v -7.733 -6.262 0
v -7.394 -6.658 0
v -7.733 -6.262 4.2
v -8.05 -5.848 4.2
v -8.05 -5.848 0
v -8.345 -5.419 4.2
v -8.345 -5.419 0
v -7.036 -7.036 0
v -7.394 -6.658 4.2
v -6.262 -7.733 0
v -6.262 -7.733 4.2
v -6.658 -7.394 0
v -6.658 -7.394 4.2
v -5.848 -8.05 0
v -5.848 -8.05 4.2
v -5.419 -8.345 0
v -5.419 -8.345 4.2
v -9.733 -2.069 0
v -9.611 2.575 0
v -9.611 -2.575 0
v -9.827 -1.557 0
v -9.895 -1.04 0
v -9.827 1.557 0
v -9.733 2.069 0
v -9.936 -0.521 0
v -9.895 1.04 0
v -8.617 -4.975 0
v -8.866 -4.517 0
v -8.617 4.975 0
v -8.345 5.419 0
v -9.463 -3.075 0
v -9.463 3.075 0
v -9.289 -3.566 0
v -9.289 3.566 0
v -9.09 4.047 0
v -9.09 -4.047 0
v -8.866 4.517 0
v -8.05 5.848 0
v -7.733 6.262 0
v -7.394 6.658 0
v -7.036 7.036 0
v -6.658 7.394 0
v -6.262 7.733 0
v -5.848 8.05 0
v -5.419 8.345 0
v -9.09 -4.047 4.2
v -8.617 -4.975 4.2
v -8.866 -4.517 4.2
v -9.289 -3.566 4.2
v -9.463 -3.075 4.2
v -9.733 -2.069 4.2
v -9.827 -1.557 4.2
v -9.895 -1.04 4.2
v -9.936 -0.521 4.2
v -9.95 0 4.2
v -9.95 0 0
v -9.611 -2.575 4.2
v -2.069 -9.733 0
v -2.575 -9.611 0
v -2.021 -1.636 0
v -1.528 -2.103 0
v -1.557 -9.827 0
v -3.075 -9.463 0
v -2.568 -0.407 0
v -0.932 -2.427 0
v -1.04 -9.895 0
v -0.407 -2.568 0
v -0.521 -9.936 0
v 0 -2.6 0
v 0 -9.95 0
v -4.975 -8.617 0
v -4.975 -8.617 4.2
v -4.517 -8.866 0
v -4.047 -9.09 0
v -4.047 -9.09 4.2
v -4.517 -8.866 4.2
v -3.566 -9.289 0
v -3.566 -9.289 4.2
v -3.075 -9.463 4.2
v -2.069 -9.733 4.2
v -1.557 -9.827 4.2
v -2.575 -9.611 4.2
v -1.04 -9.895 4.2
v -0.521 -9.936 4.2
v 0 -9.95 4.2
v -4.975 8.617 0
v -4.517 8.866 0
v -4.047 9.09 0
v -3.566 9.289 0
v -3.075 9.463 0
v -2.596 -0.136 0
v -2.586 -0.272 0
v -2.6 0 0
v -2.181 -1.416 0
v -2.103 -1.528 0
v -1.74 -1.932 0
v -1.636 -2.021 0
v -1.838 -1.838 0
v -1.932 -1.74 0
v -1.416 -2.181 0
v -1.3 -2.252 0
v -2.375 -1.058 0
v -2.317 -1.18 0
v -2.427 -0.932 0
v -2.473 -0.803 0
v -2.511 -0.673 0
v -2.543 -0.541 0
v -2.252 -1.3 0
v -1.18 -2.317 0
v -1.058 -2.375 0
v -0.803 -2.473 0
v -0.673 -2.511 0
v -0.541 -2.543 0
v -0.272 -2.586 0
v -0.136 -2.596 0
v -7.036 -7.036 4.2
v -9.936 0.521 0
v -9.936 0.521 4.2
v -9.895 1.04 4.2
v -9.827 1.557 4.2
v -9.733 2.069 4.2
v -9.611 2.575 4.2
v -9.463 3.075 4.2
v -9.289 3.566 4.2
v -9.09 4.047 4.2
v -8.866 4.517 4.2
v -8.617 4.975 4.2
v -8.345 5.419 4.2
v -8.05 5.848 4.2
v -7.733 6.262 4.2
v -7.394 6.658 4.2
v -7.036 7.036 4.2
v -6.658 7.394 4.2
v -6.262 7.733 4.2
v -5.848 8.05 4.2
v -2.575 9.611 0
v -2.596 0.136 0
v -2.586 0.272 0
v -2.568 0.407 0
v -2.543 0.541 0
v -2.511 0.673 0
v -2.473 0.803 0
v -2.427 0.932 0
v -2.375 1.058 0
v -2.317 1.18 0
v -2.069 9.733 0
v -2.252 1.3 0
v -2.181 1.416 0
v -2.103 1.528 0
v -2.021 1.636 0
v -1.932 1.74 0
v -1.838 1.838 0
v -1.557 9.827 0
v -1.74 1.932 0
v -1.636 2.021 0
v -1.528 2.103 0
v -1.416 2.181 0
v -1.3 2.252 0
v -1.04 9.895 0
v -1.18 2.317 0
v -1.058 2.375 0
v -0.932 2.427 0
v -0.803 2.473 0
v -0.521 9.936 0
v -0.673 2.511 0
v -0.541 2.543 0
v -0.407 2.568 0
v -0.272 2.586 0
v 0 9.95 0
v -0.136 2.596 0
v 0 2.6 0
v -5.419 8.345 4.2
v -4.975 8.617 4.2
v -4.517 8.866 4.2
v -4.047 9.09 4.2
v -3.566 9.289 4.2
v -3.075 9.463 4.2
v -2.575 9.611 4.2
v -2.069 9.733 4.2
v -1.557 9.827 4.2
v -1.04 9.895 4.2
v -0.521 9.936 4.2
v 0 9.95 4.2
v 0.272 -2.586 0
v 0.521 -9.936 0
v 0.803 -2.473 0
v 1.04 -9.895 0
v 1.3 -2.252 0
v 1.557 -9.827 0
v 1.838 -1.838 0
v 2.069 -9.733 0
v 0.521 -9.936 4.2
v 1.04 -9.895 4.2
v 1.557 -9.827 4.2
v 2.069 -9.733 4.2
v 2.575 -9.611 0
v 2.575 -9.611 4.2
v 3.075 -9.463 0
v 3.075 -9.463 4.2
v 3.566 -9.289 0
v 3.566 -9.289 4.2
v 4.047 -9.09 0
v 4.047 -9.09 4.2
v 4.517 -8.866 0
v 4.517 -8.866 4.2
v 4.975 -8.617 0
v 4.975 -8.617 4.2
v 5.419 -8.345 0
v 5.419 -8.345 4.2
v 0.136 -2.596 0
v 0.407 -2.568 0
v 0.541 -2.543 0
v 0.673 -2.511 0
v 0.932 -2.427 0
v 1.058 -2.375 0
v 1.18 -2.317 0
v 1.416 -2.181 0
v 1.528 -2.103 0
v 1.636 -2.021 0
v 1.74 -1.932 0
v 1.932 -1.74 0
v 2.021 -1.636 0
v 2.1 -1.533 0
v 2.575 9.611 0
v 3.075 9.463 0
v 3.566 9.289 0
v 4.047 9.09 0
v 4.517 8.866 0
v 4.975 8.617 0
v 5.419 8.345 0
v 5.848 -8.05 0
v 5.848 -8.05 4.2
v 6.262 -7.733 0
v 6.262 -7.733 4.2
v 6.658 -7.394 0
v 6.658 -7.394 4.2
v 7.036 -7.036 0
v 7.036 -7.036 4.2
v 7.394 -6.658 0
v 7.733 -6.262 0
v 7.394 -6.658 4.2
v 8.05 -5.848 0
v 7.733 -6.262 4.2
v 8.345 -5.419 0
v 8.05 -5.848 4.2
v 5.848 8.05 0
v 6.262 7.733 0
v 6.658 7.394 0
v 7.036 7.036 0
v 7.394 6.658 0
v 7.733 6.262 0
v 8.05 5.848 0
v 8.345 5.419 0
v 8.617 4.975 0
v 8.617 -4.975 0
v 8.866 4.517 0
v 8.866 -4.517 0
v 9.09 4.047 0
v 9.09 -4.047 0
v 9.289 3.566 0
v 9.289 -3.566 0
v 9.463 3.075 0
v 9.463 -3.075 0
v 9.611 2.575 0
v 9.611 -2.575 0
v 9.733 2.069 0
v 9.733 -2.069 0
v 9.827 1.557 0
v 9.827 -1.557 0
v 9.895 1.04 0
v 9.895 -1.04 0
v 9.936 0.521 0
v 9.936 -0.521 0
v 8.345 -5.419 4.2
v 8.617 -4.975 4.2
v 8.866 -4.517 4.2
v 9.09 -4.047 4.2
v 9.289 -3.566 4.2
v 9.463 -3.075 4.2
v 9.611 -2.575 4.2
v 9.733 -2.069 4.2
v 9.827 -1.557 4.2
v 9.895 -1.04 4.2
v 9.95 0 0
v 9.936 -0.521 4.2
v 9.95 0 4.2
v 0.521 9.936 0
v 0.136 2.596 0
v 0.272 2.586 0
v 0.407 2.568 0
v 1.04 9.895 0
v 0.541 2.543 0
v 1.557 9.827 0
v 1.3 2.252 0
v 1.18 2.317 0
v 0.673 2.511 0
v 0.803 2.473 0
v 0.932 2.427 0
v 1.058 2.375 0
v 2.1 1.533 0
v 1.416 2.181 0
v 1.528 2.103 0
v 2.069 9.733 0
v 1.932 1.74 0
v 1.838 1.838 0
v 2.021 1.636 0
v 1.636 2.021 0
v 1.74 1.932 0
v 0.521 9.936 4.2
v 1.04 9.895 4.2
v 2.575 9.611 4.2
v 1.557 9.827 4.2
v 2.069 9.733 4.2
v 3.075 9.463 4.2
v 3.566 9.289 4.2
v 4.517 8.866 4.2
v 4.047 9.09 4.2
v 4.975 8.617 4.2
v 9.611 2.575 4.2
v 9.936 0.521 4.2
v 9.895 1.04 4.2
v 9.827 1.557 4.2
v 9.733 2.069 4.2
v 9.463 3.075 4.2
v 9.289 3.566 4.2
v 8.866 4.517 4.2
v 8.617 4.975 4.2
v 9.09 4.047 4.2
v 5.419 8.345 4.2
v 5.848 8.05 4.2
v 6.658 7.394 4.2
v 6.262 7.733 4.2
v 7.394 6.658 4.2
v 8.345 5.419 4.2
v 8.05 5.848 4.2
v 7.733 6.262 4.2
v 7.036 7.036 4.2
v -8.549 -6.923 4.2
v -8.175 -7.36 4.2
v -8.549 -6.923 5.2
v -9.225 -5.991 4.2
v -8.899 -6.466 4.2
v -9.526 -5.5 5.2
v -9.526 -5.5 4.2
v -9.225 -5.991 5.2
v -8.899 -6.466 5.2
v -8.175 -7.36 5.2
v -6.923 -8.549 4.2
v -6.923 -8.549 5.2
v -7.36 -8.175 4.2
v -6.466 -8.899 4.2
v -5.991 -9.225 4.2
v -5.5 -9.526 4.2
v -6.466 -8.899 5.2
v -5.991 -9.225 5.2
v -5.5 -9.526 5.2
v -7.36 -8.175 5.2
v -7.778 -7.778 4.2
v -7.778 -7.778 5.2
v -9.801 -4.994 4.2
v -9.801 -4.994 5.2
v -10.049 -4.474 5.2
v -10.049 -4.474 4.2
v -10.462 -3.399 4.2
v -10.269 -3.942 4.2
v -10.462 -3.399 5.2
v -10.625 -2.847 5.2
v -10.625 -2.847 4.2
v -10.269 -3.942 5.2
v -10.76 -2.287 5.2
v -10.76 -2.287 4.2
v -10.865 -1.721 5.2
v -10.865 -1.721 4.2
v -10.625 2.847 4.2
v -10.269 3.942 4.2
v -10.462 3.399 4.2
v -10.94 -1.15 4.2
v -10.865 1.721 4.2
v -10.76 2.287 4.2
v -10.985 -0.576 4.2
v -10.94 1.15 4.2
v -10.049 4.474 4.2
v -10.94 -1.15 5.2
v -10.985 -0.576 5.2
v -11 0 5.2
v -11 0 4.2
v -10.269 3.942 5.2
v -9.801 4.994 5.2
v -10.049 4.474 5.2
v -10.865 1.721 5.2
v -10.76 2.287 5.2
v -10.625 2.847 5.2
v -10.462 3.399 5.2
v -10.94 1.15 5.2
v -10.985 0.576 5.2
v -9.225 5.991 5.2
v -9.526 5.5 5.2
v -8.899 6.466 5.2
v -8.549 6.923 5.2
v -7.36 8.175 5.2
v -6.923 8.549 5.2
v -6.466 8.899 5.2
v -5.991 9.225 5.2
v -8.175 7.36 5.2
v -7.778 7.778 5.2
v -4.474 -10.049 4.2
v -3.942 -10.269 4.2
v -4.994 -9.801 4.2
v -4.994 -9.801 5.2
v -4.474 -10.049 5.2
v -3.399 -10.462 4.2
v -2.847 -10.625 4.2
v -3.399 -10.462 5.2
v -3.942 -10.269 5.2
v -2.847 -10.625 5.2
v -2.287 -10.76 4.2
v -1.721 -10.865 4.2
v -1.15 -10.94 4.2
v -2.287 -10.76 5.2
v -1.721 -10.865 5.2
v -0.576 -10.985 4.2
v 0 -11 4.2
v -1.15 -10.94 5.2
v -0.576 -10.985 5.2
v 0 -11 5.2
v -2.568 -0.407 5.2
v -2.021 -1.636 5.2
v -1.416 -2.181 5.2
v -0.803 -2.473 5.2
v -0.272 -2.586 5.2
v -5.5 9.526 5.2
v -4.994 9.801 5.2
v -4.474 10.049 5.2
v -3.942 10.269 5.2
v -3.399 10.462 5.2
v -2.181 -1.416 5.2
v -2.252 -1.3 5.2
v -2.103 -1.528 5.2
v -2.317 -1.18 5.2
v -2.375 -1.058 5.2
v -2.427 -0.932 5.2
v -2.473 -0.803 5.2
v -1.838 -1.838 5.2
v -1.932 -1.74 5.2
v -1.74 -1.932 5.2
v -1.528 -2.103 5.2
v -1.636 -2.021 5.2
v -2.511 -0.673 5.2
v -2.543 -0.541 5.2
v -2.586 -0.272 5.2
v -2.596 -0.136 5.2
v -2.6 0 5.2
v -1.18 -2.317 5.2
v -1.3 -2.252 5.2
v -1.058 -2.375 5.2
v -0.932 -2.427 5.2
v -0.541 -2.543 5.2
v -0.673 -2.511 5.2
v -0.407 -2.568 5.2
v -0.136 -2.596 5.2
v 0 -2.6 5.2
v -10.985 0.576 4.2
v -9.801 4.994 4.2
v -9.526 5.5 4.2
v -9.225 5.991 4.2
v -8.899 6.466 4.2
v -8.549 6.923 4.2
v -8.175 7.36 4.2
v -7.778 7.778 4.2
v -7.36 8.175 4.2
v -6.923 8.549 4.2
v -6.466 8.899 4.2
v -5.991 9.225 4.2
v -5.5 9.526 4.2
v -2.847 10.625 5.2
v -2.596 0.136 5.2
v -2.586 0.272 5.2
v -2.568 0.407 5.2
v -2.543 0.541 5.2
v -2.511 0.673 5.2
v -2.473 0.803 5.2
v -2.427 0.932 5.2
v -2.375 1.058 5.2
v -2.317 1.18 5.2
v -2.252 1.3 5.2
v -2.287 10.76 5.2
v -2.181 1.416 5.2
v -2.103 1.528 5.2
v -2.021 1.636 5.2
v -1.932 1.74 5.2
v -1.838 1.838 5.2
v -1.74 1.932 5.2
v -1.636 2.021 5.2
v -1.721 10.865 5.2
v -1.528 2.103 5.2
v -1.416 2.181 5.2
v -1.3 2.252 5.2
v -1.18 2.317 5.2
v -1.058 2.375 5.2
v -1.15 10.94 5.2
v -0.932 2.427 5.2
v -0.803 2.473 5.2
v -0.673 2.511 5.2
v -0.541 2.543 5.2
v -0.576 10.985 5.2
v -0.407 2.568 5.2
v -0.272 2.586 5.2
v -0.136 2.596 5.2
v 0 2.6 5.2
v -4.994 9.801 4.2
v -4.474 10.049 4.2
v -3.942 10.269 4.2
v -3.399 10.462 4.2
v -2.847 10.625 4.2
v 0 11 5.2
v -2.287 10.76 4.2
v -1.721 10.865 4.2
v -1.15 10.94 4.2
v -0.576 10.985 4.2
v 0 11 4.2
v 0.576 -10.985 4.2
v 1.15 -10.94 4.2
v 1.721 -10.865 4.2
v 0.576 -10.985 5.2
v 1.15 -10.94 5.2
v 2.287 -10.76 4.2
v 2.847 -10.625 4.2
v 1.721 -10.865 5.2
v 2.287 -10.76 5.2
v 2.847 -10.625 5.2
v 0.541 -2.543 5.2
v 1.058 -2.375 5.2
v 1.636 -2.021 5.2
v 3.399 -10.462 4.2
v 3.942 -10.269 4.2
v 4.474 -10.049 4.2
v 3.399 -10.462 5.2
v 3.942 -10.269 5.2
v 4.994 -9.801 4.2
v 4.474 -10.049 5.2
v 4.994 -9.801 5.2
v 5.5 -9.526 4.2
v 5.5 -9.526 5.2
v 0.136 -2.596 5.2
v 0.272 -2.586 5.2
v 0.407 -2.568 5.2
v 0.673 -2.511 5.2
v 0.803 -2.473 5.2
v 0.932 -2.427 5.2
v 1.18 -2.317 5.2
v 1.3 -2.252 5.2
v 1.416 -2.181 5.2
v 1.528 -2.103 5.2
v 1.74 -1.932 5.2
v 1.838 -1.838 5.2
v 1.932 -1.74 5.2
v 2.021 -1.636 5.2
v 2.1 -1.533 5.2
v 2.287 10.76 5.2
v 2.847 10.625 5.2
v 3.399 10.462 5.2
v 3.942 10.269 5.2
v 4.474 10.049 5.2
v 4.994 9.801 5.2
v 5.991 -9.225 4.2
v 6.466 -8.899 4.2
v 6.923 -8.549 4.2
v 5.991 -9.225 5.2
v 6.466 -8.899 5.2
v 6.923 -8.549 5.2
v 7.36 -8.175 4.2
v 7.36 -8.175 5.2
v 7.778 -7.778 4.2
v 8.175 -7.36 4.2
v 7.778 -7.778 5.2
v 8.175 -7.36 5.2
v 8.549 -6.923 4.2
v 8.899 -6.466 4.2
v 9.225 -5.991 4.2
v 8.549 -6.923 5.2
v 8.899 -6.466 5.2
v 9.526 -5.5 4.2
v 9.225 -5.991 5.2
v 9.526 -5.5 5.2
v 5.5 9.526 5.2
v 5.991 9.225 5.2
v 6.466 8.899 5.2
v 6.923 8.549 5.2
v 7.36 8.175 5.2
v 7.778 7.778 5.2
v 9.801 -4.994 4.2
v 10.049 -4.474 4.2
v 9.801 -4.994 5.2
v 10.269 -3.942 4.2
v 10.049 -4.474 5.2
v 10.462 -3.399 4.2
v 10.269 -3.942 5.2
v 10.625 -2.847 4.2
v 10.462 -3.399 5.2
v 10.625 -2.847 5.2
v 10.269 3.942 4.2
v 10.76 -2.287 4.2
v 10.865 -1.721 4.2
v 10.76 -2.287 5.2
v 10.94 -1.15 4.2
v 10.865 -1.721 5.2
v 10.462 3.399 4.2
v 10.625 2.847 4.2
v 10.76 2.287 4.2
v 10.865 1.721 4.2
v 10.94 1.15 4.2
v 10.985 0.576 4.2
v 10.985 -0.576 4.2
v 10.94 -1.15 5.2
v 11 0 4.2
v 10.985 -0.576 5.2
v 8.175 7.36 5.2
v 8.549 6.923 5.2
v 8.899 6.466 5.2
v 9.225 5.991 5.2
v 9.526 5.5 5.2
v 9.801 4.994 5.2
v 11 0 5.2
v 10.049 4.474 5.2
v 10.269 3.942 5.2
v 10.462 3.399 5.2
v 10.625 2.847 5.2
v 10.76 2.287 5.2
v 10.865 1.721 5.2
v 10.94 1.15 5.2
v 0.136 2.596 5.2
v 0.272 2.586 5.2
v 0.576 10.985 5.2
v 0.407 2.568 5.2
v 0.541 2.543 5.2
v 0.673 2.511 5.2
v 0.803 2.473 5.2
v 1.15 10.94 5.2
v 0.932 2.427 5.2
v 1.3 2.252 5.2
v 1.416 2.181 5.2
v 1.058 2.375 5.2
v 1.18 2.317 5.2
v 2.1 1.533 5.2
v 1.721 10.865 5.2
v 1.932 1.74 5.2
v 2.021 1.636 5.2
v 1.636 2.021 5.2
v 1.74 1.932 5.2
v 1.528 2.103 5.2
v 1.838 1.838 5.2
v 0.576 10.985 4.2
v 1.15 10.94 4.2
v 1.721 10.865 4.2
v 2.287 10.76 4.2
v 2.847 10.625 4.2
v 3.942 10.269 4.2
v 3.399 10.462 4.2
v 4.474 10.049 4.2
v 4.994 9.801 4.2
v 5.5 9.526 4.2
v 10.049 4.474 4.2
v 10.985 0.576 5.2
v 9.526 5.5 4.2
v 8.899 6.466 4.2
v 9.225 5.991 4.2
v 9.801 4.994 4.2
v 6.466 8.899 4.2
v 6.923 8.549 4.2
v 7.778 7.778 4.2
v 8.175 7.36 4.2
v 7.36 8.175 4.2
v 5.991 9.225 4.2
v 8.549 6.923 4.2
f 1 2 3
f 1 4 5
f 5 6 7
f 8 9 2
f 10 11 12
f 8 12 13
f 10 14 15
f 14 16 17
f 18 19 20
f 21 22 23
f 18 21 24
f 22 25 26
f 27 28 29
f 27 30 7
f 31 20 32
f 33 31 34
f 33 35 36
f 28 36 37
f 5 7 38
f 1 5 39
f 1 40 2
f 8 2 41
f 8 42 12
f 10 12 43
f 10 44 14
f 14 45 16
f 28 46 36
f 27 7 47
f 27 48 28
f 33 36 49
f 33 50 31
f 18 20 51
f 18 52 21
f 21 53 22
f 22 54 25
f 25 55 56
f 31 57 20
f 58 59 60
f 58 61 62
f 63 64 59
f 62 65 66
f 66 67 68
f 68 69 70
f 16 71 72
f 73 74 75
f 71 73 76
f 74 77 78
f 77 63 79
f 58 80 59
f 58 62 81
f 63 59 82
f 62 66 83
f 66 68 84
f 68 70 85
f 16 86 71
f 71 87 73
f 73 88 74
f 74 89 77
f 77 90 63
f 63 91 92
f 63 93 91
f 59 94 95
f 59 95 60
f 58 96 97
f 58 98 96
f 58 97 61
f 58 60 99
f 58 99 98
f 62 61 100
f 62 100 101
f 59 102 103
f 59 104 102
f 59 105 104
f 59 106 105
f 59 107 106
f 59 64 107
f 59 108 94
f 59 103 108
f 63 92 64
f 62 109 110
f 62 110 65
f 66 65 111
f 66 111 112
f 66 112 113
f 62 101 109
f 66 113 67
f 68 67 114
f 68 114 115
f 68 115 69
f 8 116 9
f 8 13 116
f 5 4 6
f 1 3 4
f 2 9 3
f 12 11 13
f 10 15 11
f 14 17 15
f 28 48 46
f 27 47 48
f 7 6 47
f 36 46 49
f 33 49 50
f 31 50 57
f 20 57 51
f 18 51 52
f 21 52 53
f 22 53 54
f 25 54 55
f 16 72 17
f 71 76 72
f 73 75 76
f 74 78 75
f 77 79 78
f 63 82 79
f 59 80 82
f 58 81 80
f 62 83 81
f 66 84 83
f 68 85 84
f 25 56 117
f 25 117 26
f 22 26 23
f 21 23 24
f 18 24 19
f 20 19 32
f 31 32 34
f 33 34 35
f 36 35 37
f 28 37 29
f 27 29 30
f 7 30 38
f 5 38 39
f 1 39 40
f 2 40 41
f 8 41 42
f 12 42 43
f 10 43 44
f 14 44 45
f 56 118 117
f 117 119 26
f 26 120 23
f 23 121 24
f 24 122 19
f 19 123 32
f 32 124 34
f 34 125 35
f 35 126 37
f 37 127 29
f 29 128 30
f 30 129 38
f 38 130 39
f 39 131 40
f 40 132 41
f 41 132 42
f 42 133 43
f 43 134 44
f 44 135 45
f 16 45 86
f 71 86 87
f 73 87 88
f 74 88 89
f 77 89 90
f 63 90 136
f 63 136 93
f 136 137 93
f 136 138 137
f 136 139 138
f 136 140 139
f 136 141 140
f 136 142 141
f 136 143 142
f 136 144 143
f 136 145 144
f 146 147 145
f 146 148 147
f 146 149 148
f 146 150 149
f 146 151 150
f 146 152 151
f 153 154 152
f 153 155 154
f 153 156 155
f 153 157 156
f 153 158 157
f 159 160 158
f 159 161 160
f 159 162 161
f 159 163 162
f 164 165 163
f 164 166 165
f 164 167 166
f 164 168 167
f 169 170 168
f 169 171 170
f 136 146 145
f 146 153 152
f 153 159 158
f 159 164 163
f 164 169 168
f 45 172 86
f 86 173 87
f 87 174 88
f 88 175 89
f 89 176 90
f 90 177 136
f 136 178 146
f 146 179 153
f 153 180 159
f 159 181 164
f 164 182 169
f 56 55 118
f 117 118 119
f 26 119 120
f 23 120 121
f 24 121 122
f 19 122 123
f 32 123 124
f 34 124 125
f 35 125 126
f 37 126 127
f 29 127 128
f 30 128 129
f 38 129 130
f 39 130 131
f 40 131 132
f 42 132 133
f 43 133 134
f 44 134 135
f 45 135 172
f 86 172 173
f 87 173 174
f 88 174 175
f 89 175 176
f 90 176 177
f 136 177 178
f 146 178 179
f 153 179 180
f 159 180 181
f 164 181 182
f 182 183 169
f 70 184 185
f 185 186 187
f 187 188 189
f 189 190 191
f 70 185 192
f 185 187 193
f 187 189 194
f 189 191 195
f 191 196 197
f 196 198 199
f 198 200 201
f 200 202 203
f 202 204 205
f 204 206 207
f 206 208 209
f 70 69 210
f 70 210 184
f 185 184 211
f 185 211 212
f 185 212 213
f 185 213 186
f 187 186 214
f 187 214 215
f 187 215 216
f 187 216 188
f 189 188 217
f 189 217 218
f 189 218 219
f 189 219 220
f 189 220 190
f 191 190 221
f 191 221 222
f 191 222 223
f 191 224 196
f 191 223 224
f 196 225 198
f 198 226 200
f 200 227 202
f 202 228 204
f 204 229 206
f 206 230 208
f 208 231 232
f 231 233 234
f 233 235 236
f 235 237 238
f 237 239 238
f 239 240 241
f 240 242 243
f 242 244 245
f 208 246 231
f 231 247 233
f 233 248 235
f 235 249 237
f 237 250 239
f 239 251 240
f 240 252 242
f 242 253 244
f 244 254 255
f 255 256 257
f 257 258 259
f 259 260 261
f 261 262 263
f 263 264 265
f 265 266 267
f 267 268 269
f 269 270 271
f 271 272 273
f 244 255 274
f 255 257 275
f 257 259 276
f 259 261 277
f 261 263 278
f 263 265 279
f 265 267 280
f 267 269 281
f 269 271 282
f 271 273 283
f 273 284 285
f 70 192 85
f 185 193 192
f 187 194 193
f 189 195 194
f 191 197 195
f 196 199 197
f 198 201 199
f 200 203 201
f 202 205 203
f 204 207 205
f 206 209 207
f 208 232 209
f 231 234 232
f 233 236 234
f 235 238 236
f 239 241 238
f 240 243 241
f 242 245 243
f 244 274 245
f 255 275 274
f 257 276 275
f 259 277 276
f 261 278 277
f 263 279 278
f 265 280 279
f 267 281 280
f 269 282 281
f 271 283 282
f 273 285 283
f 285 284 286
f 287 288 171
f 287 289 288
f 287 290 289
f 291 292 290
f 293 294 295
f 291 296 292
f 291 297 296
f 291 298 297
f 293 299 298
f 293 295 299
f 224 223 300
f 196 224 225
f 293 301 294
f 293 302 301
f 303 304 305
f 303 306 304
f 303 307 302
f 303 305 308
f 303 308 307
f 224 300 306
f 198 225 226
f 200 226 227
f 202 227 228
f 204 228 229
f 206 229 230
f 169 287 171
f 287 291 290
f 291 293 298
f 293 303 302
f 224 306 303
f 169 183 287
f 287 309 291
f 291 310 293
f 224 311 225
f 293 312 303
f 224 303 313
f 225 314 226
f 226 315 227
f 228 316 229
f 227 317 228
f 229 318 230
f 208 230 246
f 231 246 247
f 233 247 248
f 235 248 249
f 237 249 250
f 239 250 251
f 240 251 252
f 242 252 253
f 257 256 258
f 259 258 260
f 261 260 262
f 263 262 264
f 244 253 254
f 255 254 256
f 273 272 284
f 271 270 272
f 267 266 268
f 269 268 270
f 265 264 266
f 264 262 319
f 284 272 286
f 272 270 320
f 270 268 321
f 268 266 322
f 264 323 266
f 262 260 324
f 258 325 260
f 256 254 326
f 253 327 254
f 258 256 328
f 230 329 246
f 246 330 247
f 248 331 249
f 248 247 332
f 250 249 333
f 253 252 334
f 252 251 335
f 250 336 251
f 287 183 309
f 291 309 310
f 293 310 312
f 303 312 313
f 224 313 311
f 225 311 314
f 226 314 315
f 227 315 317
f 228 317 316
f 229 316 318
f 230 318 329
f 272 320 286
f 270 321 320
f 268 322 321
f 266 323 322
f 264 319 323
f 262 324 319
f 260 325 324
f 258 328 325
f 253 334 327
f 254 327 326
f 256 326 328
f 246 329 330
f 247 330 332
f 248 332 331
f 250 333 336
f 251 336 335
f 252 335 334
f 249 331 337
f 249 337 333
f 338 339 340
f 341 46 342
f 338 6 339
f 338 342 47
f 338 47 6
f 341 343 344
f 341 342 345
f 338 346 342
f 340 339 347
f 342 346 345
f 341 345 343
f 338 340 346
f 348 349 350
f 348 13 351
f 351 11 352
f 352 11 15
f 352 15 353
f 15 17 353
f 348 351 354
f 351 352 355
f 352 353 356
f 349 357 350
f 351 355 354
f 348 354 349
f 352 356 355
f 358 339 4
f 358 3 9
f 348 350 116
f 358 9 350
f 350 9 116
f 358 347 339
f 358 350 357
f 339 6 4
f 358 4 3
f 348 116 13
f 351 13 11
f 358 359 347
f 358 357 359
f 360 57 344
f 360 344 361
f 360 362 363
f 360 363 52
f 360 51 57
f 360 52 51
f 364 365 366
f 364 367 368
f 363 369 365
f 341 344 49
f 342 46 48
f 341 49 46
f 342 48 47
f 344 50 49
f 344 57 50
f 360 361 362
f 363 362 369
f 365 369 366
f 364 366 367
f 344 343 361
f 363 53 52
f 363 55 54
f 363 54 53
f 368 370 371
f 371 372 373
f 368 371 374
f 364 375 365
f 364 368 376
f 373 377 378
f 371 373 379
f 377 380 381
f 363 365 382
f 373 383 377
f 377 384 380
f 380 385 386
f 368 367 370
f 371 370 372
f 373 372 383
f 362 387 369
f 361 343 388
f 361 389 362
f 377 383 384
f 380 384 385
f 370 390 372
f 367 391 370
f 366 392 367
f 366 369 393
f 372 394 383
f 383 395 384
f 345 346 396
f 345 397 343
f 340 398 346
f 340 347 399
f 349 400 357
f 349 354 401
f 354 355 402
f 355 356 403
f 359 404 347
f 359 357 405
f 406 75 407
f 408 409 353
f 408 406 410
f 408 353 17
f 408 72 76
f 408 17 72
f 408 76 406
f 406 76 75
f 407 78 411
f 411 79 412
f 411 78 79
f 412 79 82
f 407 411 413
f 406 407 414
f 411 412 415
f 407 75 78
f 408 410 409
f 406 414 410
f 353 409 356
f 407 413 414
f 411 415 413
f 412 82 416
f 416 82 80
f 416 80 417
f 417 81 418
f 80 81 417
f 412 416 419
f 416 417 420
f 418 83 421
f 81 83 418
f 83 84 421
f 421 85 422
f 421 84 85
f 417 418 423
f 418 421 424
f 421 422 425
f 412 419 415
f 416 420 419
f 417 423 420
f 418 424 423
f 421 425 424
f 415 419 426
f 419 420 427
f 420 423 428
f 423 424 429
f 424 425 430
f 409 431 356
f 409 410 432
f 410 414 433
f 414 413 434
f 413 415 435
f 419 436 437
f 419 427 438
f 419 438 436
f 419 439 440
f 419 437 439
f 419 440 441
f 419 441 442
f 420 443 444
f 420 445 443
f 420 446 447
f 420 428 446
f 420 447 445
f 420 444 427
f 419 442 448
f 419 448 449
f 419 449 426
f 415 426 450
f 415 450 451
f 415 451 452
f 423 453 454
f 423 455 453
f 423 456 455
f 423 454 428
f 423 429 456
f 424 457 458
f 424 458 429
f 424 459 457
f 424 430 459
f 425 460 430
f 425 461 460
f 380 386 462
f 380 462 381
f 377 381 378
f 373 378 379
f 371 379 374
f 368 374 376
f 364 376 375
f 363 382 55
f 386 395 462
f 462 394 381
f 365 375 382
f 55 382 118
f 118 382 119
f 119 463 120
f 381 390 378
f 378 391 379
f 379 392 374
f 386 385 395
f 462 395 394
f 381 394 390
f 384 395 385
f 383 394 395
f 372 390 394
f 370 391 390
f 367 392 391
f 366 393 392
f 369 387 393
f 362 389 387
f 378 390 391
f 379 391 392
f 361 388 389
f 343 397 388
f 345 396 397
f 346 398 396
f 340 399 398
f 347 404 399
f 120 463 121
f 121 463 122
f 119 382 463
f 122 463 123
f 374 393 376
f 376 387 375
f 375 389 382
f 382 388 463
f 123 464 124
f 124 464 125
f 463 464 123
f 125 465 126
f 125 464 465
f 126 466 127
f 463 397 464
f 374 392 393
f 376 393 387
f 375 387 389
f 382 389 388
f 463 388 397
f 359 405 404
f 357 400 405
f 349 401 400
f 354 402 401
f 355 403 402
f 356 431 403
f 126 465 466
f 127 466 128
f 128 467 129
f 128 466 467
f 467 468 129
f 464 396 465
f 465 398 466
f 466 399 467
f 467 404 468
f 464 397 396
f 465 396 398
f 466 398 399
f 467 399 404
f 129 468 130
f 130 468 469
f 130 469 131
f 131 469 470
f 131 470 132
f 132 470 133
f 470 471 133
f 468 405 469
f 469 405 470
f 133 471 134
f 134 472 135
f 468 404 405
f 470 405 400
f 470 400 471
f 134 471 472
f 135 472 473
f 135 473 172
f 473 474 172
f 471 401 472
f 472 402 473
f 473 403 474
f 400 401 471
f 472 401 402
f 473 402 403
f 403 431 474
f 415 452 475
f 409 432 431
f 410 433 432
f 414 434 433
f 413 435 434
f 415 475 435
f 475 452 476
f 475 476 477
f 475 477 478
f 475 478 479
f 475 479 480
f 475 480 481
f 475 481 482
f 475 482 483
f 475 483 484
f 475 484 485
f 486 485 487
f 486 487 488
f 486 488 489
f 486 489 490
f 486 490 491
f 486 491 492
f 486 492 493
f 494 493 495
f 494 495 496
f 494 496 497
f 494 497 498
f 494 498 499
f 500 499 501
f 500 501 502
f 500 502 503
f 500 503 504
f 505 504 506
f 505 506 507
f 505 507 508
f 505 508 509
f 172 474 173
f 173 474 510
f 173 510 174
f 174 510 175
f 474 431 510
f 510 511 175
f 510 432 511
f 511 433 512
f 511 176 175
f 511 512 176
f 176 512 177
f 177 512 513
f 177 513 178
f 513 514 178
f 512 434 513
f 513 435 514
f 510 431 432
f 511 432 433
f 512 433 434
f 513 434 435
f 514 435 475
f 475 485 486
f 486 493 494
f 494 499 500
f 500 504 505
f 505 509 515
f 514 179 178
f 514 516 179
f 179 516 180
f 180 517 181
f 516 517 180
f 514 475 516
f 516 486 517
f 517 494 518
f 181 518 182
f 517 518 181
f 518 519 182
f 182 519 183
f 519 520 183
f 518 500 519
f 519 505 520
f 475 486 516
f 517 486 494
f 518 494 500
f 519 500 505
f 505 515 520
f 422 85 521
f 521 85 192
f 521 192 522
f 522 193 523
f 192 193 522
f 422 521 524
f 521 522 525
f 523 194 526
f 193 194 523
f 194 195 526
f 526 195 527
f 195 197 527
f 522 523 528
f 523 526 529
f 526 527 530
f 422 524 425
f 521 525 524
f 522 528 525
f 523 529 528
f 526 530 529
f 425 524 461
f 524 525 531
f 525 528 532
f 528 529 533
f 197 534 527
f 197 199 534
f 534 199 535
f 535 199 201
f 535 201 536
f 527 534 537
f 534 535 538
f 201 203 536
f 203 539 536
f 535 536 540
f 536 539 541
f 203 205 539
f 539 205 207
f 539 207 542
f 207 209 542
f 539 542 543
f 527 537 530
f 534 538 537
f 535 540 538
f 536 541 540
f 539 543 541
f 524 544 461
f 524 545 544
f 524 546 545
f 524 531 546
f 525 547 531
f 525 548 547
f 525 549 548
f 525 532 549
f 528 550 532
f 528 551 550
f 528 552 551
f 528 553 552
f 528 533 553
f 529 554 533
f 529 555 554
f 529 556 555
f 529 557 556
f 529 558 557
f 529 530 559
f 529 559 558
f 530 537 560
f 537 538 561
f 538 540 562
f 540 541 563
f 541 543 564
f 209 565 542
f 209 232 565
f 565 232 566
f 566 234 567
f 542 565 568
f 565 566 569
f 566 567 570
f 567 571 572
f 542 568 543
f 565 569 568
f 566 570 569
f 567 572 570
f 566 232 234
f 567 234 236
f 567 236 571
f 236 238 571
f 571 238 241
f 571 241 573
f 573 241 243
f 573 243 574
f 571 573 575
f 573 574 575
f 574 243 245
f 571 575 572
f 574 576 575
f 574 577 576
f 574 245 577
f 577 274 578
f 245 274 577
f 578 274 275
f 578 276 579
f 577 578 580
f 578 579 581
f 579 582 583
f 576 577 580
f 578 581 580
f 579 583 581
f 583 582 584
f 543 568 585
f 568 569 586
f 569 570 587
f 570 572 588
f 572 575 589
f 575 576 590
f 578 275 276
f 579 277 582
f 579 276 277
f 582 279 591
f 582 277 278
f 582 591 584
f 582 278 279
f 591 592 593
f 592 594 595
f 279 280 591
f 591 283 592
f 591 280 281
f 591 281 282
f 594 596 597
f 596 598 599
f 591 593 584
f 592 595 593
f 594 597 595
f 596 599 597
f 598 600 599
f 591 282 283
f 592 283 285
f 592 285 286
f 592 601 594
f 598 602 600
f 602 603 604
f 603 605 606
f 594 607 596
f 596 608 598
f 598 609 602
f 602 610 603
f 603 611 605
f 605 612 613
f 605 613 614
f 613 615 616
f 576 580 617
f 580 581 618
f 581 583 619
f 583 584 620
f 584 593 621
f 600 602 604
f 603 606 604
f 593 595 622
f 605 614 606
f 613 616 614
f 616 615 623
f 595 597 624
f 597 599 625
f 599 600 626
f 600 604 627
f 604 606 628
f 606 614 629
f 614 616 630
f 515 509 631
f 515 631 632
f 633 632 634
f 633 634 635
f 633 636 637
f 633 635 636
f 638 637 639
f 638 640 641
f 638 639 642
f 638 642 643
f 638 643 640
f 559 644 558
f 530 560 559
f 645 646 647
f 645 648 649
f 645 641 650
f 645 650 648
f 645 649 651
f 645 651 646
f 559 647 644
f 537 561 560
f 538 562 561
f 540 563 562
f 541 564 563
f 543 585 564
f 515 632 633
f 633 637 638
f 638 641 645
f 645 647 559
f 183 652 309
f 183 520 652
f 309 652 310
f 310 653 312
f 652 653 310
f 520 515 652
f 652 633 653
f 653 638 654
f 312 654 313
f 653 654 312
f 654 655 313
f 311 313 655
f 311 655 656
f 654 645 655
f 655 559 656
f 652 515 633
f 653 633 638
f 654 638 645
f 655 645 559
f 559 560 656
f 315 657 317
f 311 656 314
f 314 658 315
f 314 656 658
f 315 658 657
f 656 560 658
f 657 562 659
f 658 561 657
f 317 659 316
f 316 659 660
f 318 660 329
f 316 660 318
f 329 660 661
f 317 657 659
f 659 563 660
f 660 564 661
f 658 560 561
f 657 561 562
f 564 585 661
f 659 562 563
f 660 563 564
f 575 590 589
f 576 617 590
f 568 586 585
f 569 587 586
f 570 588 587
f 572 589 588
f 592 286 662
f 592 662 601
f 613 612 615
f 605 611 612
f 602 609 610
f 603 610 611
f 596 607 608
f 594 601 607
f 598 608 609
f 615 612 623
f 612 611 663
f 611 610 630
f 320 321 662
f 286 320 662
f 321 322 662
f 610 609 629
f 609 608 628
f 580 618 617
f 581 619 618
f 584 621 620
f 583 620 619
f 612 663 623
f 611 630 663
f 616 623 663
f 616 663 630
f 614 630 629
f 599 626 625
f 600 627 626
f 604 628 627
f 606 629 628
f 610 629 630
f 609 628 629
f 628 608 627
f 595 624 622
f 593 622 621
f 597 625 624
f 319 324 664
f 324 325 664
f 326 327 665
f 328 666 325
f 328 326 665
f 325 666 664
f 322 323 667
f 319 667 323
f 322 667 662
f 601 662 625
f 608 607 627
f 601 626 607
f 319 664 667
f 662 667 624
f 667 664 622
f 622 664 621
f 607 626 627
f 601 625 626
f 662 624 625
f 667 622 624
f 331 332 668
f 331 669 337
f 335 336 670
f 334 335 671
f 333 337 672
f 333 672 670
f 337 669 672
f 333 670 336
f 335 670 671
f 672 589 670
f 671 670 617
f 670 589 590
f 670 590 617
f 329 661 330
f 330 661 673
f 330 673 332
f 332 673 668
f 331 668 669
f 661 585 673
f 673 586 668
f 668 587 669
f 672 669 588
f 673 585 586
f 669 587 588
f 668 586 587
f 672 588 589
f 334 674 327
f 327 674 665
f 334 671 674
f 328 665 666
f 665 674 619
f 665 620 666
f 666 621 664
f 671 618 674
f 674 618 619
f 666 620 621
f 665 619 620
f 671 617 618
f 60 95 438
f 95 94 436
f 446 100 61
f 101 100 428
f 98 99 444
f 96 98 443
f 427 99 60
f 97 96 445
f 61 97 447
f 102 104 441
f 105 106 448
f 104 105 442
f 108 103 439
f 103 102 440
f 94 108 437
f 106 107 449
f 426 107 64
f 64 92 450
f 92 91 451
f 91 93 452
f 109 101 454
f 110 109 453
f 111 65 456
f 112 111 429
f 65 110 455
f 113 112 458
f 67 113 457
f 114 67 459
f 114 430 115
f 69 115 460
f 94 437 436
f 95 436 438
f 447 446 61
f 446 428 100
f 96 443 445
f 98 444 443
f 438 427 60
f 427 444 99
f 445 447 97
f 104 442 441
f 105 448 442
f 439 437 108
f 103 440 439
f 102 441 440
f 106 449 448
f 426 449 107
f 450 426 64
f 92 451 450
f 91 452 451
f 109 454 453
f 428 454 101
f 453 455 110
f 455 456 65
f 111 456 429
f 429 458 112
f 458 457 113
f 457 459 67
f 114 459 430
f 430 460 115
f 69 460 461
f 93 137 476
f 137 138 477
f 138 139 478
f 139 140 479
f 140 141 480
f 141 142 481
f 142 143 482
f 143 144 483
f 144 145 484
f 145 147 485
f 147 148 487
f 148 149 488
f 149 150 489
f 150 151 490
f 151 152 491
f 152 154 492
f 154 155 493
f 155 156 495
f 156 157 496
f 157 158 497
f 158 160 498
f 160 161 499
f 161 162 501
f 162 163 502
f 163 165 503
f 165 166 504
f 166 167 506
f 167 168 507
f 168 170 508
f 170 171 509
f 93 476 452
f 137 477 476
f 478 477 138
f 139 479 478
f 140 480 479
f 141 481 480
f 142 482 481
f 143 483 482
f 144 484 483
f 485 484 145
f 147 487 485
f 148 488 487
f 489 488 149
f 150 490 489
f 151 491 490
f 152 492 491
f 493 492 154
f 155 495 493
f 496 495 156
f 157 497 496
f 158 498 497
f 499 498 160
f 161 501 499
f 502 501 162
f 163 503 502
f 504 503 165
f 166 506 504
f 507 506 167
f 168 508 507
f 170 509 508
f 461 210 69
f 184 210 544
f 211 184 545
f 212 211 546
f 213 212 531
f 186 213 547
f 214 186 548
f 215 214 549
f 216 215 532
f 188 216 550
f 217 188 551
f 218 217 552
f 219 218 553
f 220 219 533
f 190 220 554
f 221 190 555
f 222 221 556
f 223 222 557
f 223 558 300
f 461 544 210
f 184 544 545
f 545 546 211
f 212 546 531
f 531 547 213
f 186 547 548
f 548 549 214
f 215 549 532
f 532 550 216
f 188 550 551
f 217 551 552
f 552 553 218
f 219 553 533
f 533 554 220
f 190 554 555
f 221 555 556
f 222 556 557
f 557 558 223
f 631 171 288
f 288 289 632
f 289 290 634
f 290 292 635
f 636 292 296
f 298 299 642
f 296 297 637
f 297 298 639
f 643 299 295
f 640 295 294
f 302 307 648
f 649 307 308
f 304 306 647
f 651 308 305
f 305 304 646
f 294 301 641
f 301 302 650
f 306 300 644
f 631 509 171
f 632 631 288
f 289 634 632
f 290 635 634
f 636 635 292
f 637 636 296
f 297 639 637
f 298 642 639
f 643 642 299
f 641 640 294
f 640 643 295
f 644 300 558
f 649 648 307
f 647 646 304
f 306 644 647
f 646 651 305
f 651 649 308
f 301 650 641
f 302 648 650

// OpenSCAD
// file: oobb_hardware.scad
// Generated from installed OOBB v5. All primitives use overhang=True.

module oobb_hole_m2() {
difference() {
	union() {
		cylinder(h = 1, r = 1.35);
	}
	union();
}

}

module oobb_hole_m3() {
difference() {
	union() {
		cylinder(h = 1, r = 1.8);
	}
	union();
}

}

module oobb_hole_m6() {
difference() {
	union() {
		cylinder(h = 1, r = 3.25);
	}
	union();
}

}

module oobb_nut_m2() {
difference() {
	union() {
		translate(v = [0, 0, 0]) {
			rotate(a = [0, 0, 0]) {
				difference() {
					union() {
						linear_extrude(height = 2.2) {
							polygon(points = [[2.4234, 0.0], [1.2117000000000002, 2.0987259635312085], [-1.2116999999999996, 2.0987259635312085], [-2.4234, 2.967809053053696e-16], [-1.211700000000001, -2.098725963531208], [1.2116999999999984, -2.0987259635312094]]);
						}
						translate(v = [-1.25, -2.75, -0.3]) {
							cube(size = [2.5, 5.5, 0.3]);
						}
						translate(v = [-1.25, -1.25, -0.6]) {
							cube(size = [2.5, 2.5, 0.3]);
						}
						translate(v = [-1.25, -2.75, 2.2]) {
							cube(size = [2.5, 5.5, 0.3]);
						}
						translate(v = [-1.25, -1.25, 2.5]) {
							cube(size = [2.5, 2.5, 0.3]);
						}
					}
					union();
				}
			}
		}
	}
	union();
}

}

module oobb_socket_m2() {
difference() {
	union() {
		translate(v = [0, 0, 0]) {
			rotate(a = [0, 0, 0]) {
				difference() {
					union() {
						cylinder(h = 2.2, r = 2.1);
						translate(v = [-1.25, -2.75, -0.3]) {
							cube(size = [2.5, 5.5, 0.3]);
						}
						translate(v = [-1.25, -1.25, -0.6]) {
							cube(size = [2.5, 2.5, 0.3]);
						}
					}
					union();
				}
			}
		}
	}
	union();
}

}

module oobb_nut_m3() {
difference() {
	union() {
		translate(v = [0, 0, 0]) {
			rotate(a = [0, 0, 0]) {
				difference() {
					union() {
						linear_extrude(height = 2.7) {
							polygon(points = [[3.4619999999999997, 0.0], [1.7310000000000003, 2.9981799479017264], [-1.7309999999999992, 2.9981799479017264], [-3.4619999999999997, 4.2397272186481365e-16], [-1.7310000000000014, -2.998179947901726], [1.7309999999999977, -2.9981799479017277]]);
						}
						translate(v = [-1.75, -3.25, -0.3]) {
							cube(size = [3.5, 6.5, 0.3]);
						}
						translate(v = [-1.75, -1.75, -0.6]) {
							cube(size = [3.5, 3.5, 0.3]);
						}
						translate(v = [-1.75, -3.25, 2.7]) {
							cube(size = [3.5, 6.5, 0.3]);
						}
						translate(v = [-1.75, -1.75, 3.0]) {
							cube(size = [3.5, 3.5, 0.3]);
						}
					}
					union();
				}
			}
		}
	}
	union();
}

}

module oobb_socket_m3() {
difference() {
	union() {
		translate(v = [0, 0, 0]) {
			rotate(a = [0, 0, 0]) {
				difference() {
					union() {
						cylinder(h = 3.2, r = 3.0);
						translate(v = [-1.75, -3.25, -0.3]) {
							cube(size = [3.5, 6.5, 0.3]);
						}
						translate(v = [-1.75, -1.75, -0.6]) {
							cube(size = [3.5, 3.5, 0.3]);
						}
					}
					union();
				}
			}
		}
	}
	union();
}

}
// file: parameters.scad
// Generated by working_scad.py. Edit the Python recipe to persist changes.
style = "version_5";
reduction = 20;
bearing_output = "6810";
bearing_input = "6704";
bearing_wave = "6704";
roller_diameter = 7.0;
roller_bore_diameter = 3.2;
roller_length = 12.0;
roller_material = "nylon";
central_joint_depth = 6.0;
max_screw_length = 35.0;
eccentricity = 0.75;
wave_radius = 40.0;
profile_clearance = 0.15;
roller_slot_clearance = 0.3;
roller_end_clearance = 0.3;
cage_wall = 4.0;
cage_plate_depth = 3.0;
bearing_seat_clearance = 0.1;
journal_clearance = 0.05;
bearing_axial_clearance = 0.2;
retainer_depth = 4.0;
housing_radius = 57.5;
housing_flange_width = 119.0;
housing_flange_depth = 3.0;
housing_flange_corner_radius = 1.5;
housing_screw_pitch_radius = 53.0;
housing_screw_count = 8;
input_shaft_diameter = 5.0;
input_shaft_flat_depth = 0.5;
shaft_fit_clearance = 0.1;
cage_screw_count = 5;
cage_screw_pilot_diameter = 1.6;
profile_samples_per_cavity = 100;
circle_fragments = 120;
overhang = true;
run_scad = true;
run_solidcraft = false;
// main file
include <parameters.scad>;
use <oobb_hardware.scad>;
include <geometry.scad>;
input_journal();
